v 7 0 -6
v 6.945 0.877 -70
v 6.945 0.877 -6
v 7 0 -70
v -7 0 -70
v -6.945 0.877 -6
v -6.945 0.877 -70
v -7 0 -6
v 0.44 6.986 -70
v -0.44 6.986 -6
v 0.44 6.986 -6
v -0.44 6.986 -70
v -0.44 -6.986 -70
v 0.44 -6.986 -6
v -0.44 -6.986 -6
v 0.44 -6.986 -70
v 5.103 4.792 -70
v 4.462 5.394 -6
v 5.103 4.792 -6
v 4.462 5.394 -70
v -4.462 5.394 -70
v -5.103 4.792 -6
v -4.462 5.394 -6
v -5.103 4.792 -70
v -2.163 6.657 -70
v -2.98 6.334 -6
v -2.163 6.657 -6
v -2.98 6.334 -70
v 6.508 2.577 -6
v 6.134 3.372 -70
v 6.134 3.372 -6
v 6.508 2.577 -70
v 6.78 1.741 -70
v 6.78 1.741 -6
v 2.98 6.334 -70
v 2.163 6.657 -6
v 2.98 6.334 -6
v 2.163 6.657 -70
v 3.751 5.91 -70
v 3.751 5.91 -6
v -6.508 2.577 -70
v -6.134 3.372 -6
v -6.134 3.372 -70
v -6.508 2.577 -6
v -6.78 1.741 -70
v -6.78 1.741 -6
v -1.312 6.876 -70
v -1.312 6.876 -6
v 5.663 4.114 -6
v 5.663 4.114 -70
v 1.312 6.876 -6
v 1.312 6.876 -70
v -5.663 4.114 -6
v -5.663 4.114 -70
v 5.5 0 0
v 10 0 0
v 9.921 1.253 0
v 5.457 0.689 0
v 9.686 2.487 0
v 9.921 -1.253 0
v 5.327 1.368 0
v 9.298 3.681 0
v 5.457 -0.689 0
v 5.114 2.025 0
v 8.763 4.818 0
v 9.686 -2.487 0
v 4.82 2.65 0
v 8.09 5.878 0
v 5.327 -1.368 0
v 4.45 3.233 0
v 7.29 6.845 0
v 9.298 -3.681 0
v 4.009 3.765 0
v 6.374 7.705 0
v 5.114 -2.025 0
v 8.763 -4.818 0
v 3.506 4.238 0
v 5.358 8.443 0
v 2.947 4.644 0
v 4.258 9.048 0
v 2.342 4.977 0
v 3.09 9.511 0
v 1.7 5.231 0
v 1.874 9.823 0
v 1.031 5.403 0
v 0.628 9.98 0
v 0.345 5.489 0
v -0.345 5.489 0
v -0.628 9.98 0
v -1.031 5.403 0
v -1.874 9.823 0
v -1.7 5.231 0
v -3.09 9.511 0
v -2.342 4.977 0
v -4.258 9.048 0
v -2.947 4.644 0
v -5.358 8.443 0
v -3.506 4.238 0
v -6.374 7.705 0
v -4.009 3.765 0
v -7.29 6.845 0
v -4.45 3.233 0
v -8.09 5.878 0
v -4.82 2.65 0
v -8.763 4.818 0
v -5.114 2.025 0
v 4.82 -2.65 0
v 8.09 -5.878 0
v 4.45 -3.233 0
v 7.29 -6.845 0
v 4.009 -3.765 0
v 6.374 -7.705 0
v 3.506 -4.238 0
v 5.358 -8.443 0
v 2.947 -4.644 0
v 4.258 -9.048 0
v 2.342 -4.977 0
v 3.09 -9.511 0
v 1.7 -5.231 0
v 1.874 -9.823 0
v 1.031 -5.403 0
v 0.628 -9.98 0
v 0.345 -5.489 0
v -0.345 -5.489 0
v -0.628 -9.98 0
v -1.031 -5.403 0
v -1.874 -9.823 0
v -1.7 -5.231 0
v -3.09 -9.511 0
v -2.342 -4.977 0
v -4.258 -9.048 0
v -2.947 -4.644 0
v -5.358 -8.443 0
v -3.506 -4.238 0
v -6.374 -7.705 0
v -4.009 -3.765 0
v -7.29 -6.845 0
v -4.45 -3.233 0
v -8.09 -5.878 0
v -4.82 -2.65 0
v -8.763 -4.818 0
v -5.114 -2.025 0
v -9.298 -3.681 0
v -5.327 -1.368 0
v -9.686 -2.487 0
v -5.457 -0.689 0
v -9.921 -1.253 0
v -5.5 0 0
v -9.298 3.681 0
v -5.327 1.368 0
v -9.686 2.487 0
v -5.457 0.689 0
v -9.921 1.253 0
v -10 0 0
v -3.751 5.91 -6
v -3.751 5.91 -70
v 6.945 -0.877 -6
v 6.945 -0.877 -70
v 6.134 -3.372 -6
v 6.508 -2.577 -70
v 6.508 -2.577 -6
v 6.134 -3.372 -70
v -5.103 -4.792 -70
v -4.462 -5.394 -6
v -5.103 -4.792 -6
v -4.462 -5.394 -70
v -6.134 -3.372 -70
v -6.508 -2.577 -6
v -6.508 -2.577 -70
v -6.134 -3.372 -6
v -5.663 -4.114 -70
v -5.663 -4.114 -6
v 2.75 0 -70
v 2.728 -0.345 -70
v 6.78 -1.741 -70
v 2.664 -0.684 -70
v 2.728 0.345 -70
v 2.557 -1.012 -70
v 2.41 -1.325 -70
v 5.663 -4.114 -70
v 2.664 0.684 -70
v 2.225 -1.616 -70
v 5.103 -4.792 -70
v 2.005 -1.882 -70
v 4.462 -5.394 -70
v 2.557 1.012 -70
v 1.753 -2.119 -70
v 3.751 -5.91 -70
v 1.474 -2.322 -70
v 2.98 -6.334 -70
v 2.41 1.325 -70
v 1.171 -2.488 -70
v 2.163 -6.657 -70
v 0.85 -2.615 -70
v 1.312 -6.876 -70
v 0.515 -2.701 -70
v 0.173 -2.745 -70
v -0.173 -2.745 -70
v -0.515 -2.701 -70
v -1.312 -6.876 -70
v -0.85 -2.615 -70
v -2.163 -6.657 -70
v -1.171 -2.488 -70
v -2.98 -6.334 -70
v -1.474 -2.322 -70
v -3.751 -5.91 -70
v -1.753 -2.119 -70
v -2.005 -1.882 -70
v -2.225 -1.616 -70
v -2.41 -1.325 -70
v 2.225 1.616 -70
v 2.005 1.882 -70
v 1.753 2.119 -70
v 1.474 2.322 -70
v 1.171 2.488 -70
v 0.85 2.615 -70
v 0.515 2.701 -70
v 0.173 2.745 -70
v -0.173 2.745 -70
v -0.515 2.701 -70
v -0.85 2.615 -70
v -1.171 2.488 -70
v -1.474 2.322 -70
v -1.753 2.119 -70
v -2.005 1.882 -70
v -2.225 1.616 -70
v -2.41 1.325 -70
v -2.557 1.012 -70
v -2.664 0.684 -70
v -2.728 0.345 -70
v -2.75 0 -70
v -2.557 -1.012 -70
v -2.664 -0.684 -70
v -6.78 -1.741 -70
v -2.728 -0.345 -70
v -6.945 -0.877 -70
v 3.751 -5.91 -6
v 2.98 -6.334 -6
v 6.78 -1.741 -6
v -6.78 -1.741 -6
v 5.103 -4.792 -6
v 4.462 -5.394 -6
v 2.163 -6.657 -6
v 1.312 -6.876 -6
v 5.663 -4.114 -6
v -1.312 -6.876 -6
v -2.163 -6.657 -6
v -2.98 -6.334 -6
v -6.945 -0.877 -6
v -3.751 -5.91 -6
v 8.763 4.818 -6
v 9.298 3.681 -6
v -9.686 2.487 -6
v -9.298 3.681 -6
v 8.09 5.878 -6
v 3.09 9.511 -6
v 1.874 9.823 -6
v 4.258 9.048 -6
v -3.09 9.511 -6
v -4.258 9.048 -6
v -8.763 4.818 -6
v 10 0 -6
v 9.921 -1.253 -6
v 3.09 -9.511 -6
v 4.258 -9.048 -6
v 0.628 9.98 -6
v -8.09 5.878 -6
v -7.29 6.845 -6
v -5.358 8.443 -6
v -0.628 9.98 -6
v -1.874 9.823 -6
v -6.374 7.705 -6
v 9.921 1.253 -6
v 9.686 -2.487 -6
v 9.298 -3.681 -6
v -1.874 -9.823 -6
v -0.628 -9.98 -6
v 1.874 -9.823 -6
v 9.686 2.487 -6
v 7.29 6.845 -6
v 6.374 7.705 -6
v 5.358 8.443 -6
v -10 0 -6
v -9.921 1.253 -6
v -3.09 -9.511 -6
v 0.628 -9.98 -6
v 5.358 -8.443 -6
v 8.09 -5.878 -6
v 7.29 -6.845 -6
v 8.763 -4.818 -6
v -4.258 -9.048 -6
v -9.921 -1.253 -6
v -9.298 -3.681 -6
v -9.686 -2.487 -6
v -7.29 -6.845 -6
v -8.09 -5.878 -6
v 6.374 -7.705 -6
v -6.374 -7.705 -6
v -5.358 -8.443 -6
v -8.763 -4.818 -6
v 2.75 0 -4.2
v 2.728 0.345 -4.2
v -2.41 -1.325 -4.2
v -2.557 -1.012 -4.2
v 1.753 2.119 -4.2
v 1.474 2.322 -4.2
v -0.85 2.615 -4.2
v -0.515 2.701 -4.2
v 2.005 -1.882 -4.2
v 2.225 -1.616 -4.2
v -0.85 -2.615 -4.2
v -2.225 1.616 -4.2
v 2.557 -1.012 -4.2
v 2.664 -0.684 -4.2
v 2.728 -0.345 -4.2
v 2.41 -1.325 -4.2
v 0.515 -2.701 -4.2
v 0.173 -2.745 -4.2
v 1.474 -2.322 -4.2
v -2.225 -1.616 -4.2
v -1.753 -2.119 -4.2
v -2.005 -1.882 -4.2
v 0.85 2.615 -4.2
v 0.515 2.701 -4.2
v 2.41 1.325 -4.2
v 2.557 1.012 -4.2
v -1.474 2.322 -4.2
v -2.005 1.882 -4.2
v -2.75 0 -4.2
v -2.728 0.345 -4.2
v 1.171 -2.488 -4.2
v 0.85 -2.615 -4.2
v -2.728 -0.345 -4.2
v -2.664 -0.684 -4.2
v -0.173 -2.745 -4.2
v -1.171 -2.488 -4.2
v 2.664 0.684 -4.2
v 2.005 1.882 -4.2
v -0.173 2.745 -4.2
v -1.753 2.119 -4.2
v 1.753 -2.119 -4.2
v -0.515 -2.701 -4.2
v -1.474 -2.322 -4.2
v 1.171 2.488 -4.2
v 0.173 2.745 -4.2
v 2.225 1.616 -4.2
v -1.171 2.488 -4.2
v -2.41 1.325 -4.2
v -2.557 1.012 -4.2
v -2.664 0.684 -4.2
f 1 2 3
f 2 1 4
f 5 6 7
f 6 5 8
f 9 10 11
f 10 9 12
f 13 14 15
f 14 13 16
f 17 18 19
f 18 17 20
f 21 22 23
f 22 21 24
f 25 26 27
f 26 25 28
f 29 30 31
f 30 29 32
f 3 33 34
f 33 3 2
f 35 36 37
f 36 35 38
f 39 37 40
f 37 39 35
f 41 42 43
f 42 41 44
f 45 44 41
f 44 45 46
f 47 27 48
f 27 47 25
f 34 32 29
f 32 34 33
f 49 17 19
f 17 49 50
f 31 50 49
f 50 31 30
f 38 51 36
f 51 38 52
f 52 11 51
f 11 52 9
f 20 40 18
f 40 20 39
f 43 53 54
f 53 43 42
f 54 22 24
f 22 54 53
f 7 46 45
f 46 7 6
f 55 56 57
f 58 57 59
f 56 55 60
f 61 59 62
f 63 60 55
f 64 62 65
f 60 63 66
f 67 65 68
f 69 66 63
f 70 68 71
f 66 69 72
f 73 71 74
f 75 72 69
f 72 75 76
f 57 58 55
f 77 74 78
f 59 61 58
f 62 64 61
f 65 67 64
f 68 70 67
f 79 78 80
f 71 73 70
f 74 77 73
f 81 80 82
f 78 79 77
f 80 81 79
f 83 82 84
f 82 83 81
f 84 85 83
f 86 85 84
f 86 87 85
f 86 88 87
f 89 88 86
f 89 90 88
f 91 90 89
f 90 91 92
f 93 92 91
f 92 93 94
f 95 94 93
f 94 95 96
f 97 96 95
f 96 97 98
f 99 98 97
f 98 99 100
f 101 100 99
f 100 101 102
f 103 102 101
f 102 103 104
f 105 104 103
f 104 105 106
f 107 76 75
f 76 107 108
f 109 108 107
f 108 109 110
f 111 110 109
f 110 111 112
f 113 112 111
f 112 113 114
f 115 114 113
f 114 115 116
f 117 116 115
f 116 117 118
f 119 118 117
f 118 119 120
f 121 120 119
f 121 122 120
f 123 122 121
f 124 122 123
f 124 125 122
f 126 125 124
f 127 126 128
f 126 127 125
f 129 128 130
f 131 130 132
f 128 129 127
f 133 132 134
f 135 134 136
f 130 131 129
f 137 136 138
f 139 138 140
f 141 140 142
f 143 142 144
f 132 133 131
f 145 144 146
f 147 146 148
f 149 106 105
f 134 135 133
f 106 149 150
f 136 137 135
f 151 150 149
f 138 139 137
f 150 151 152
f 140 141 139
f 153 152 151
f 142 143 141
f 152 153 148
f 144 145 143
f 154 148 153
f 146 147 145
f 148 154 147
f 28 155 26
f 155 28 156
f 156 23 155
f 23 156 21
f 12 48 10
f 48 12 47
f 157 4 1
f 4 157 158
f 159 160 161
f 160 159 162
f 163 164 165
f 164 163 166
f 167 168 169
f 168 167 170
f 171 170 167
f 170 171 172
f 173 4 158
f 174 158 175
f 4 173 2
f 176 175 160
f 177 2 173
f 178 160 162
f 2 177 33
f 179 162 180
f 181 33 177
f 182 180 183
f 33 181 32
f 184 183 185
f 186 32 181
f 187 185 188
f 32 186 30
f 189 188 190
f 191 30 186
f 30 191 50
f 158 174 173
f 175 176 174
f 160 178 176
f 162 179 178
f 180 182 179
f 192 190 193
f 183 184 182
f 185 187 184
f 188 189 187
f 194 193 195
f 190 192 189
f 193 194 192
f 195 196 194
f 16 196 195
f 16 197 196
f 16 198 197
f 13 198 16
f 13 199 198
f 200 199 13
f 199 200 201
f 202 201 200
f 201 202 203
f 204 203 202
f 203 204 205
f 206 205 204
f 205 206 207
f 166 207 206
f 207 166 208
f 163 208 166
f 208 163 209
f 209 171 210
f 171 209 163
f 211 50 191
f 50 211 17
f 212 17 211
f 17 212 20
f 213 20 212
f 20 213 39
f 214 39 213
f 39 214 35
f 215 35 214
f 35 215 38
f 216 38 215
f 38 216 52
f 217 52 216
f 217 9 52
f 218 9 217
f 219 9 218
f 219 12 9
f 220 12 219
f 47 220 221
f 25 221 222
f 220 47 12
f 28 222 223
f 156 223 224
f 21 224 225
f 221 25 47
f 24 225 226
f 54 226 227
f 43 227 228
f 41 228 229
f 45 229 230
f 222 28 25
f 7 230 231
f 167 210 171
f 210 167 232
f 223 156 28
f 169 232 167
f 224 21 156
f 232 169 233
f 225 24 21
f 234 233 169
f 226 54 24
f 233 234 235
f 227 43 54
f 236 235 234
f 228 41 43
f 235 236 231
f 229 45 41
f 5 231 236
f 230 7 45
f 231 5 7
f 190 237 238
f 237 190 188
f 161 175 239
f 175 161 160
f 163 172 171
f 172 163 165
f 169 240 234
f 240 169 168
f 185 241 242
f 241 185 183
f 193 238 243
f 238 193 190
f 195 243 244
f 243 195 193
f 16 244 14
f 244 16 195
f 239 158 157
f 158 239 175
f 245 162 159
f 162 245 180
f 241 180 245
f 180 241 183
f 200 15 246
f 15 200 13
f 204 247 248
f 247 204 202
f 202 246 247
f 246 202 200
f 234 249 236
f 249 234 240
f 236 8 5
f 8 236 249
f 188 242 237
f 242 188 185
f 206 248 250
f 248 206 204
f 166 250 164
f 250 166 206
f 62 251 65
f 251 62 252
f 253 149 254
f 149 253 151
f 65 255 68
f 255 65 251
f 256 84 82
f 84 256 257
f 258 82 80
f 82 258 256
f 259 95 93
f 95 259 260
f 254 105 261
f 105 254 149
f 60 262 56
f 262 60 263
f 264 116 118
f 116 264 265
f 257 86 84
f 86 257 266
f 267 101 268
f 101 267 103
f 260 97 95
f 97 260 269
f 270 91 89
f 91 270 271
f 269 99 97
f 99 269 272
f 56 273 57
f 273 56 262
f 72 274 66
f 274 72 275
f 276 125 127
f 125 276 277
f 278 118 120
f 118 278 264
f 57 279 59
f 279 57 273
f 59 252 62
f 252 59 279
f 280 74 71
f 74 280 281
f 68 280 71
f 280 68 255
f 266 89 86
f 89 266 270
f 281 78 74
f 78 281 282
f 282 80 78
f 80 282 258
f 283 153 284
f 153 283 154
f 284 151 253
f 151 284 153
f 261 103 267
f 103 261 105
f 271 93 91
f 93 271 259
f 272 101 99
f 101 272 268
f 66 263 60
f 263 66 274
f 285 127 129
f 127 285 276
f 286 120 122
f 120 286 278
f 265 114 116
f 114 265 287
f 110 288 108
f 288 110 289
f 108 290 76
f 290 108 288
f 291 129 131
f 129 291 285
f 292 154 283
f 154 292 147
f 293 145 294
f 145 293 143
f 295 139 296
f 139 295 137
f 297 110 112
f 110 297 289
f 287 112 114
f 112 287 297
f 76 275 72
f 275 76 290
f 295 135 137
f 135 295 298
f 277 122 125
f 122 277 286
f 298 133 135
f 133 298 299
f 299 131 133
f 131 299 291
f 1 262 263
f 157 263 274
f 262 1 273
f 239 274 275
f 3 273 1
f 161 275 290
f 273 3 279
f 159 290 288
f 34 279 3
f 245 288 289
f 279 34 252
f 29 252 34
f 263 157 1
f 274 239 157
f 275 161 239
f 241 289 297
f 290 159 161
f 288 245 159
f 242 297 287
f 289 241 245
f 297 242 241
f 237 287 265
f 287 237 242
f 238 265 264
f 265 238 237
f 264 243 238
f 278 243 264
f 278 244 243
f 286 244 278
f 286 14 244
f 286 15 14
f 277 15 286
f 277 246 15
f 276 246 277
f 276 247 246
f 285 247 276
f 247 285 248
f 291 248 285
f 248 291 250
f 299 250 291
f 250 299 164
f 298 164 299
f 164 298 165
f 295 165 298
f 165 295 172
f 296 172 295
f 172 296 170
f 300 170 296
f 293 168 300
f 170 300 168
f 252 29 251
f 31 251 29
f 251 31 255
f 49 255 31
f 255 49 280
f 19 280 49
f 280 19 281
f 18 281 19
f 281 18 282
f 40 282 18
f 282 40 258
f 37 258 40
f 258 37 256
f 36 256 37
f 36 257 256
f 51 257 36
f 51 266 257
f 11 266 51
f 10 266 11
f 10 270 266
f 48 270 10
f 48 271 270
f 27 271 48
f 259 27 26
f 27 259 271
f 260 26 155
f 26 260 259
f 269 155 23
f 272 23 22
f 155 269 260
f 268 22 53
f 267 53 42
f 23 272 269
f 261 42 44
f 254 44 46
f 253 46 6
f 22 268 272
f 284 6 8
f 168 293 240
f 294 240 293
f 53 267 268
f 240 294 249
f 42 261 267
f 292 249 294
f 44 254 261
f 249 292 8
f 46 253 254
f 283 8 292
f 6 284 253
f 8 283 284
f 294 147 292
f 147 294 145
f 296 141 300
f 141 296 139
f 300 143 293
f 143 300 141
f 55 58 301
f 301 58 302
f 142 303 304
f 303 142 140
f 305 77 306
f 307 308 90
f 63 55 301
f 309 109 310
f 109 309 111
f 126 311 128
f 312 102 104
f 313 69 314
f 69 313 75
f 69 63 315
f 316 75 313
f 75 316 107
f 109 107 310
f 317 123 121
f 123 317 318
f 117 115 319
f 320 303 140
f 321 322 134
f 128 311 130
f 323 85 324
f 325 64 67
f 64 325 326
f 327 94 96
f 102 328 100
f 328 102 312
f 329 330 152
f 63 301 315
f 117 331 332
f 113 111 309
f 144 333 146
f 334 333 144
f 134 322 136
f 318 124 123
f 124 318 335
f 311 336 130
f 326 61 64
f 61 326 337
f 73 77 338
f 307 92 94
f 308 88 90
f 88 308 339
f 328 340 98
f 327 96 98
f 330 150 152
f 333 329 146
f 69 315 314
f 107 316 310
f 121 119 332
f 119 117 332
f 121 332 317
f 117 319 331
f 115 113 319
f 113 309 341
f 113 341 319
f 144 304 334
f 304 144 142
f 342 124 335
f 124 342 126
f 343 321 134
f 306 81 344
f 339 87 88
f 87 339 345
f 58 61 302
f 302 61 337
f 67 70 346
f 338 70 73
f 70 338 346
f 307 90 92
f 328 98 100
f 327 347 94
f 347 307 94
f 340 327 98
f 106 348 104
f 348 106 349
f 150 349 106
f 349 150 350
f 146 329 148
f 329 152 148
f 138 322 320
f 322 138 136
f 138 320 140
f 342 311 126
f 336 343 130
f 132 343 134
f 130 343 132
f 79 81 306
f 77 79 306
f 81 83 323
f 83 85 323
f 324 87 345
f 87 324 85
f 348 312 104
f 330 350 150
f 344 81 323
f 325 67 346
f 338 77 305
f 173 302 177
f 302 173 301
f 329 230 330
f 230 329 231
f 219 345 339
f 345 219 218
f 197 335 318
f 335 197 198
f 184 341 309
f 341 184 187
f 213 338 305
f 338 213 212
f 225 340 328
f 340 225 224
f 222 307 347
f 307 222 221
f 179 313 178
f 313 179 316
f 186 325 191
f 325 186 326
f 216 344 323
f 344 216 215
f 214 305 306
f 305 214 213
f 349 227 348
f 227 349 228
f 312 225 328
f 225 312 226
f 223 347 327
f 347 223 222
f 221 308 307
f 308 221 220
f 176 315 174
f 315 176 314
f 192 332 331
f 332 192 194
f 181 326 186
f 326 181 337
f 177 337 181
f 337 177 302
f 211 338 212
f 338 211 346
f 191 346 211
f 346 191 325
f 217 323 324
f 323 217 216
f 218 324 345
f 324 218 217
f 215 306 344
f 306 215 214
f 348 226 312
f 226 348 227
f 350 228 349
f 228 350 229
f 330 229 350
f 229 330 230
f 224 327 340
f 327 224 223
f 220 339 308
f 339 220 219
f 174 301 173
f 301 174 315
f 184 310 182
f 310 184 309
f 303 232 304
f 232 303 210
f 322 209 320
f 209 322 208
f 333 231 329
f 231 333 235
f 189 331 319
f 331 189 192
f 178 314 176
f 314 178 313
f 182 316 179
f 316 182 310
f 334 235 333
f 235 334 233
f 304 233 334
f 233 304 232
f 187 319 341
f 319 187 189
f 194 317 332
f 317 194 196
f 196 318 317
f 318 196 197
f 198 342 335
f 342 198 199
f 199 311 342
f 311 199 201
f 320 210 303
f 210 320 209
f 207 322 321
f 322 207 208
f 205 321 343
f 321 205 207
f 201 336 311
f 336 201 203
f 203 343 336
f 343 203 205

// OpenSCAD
$fn = 50;


difference() {
	union() {
		translate(v = [0, 0, -70.0000000000]) {
			cylinder(h = 70, r = 7.0000000000);
		}
		translate(v = [0, 0, -6.0000000000]) {
			cylinder(h = 6, r = 10.0000000000);
		}
	}
	union() {
		translate(v = [0, 0, 0]) {
			rotate(a = [0, 0, 0]) {
				difference() {
					union() {
						#translate(v = [0, 0, -70.0000000000]) {
							cylinder(h = 70, r = 2.2500000000);
						}
						#translate(v = [0, 0, -4.2000000000]) {
							cylinder(h = 4.2000000000, r = 7.0000000000, r1 = 2.7500000000, r2 = 5.5000000000);
						}
						#translate(v = [0, 0, -70.0000000000]) {
							cylinder(h = 70, r = 2.7500000000);
						}
						#translate(v = [0, 0, -70.0000000000]) {
							cylinder(h = 70, r = 2.2500000000);
						}
					}
					union();
				}
			}
		}
	}
}
